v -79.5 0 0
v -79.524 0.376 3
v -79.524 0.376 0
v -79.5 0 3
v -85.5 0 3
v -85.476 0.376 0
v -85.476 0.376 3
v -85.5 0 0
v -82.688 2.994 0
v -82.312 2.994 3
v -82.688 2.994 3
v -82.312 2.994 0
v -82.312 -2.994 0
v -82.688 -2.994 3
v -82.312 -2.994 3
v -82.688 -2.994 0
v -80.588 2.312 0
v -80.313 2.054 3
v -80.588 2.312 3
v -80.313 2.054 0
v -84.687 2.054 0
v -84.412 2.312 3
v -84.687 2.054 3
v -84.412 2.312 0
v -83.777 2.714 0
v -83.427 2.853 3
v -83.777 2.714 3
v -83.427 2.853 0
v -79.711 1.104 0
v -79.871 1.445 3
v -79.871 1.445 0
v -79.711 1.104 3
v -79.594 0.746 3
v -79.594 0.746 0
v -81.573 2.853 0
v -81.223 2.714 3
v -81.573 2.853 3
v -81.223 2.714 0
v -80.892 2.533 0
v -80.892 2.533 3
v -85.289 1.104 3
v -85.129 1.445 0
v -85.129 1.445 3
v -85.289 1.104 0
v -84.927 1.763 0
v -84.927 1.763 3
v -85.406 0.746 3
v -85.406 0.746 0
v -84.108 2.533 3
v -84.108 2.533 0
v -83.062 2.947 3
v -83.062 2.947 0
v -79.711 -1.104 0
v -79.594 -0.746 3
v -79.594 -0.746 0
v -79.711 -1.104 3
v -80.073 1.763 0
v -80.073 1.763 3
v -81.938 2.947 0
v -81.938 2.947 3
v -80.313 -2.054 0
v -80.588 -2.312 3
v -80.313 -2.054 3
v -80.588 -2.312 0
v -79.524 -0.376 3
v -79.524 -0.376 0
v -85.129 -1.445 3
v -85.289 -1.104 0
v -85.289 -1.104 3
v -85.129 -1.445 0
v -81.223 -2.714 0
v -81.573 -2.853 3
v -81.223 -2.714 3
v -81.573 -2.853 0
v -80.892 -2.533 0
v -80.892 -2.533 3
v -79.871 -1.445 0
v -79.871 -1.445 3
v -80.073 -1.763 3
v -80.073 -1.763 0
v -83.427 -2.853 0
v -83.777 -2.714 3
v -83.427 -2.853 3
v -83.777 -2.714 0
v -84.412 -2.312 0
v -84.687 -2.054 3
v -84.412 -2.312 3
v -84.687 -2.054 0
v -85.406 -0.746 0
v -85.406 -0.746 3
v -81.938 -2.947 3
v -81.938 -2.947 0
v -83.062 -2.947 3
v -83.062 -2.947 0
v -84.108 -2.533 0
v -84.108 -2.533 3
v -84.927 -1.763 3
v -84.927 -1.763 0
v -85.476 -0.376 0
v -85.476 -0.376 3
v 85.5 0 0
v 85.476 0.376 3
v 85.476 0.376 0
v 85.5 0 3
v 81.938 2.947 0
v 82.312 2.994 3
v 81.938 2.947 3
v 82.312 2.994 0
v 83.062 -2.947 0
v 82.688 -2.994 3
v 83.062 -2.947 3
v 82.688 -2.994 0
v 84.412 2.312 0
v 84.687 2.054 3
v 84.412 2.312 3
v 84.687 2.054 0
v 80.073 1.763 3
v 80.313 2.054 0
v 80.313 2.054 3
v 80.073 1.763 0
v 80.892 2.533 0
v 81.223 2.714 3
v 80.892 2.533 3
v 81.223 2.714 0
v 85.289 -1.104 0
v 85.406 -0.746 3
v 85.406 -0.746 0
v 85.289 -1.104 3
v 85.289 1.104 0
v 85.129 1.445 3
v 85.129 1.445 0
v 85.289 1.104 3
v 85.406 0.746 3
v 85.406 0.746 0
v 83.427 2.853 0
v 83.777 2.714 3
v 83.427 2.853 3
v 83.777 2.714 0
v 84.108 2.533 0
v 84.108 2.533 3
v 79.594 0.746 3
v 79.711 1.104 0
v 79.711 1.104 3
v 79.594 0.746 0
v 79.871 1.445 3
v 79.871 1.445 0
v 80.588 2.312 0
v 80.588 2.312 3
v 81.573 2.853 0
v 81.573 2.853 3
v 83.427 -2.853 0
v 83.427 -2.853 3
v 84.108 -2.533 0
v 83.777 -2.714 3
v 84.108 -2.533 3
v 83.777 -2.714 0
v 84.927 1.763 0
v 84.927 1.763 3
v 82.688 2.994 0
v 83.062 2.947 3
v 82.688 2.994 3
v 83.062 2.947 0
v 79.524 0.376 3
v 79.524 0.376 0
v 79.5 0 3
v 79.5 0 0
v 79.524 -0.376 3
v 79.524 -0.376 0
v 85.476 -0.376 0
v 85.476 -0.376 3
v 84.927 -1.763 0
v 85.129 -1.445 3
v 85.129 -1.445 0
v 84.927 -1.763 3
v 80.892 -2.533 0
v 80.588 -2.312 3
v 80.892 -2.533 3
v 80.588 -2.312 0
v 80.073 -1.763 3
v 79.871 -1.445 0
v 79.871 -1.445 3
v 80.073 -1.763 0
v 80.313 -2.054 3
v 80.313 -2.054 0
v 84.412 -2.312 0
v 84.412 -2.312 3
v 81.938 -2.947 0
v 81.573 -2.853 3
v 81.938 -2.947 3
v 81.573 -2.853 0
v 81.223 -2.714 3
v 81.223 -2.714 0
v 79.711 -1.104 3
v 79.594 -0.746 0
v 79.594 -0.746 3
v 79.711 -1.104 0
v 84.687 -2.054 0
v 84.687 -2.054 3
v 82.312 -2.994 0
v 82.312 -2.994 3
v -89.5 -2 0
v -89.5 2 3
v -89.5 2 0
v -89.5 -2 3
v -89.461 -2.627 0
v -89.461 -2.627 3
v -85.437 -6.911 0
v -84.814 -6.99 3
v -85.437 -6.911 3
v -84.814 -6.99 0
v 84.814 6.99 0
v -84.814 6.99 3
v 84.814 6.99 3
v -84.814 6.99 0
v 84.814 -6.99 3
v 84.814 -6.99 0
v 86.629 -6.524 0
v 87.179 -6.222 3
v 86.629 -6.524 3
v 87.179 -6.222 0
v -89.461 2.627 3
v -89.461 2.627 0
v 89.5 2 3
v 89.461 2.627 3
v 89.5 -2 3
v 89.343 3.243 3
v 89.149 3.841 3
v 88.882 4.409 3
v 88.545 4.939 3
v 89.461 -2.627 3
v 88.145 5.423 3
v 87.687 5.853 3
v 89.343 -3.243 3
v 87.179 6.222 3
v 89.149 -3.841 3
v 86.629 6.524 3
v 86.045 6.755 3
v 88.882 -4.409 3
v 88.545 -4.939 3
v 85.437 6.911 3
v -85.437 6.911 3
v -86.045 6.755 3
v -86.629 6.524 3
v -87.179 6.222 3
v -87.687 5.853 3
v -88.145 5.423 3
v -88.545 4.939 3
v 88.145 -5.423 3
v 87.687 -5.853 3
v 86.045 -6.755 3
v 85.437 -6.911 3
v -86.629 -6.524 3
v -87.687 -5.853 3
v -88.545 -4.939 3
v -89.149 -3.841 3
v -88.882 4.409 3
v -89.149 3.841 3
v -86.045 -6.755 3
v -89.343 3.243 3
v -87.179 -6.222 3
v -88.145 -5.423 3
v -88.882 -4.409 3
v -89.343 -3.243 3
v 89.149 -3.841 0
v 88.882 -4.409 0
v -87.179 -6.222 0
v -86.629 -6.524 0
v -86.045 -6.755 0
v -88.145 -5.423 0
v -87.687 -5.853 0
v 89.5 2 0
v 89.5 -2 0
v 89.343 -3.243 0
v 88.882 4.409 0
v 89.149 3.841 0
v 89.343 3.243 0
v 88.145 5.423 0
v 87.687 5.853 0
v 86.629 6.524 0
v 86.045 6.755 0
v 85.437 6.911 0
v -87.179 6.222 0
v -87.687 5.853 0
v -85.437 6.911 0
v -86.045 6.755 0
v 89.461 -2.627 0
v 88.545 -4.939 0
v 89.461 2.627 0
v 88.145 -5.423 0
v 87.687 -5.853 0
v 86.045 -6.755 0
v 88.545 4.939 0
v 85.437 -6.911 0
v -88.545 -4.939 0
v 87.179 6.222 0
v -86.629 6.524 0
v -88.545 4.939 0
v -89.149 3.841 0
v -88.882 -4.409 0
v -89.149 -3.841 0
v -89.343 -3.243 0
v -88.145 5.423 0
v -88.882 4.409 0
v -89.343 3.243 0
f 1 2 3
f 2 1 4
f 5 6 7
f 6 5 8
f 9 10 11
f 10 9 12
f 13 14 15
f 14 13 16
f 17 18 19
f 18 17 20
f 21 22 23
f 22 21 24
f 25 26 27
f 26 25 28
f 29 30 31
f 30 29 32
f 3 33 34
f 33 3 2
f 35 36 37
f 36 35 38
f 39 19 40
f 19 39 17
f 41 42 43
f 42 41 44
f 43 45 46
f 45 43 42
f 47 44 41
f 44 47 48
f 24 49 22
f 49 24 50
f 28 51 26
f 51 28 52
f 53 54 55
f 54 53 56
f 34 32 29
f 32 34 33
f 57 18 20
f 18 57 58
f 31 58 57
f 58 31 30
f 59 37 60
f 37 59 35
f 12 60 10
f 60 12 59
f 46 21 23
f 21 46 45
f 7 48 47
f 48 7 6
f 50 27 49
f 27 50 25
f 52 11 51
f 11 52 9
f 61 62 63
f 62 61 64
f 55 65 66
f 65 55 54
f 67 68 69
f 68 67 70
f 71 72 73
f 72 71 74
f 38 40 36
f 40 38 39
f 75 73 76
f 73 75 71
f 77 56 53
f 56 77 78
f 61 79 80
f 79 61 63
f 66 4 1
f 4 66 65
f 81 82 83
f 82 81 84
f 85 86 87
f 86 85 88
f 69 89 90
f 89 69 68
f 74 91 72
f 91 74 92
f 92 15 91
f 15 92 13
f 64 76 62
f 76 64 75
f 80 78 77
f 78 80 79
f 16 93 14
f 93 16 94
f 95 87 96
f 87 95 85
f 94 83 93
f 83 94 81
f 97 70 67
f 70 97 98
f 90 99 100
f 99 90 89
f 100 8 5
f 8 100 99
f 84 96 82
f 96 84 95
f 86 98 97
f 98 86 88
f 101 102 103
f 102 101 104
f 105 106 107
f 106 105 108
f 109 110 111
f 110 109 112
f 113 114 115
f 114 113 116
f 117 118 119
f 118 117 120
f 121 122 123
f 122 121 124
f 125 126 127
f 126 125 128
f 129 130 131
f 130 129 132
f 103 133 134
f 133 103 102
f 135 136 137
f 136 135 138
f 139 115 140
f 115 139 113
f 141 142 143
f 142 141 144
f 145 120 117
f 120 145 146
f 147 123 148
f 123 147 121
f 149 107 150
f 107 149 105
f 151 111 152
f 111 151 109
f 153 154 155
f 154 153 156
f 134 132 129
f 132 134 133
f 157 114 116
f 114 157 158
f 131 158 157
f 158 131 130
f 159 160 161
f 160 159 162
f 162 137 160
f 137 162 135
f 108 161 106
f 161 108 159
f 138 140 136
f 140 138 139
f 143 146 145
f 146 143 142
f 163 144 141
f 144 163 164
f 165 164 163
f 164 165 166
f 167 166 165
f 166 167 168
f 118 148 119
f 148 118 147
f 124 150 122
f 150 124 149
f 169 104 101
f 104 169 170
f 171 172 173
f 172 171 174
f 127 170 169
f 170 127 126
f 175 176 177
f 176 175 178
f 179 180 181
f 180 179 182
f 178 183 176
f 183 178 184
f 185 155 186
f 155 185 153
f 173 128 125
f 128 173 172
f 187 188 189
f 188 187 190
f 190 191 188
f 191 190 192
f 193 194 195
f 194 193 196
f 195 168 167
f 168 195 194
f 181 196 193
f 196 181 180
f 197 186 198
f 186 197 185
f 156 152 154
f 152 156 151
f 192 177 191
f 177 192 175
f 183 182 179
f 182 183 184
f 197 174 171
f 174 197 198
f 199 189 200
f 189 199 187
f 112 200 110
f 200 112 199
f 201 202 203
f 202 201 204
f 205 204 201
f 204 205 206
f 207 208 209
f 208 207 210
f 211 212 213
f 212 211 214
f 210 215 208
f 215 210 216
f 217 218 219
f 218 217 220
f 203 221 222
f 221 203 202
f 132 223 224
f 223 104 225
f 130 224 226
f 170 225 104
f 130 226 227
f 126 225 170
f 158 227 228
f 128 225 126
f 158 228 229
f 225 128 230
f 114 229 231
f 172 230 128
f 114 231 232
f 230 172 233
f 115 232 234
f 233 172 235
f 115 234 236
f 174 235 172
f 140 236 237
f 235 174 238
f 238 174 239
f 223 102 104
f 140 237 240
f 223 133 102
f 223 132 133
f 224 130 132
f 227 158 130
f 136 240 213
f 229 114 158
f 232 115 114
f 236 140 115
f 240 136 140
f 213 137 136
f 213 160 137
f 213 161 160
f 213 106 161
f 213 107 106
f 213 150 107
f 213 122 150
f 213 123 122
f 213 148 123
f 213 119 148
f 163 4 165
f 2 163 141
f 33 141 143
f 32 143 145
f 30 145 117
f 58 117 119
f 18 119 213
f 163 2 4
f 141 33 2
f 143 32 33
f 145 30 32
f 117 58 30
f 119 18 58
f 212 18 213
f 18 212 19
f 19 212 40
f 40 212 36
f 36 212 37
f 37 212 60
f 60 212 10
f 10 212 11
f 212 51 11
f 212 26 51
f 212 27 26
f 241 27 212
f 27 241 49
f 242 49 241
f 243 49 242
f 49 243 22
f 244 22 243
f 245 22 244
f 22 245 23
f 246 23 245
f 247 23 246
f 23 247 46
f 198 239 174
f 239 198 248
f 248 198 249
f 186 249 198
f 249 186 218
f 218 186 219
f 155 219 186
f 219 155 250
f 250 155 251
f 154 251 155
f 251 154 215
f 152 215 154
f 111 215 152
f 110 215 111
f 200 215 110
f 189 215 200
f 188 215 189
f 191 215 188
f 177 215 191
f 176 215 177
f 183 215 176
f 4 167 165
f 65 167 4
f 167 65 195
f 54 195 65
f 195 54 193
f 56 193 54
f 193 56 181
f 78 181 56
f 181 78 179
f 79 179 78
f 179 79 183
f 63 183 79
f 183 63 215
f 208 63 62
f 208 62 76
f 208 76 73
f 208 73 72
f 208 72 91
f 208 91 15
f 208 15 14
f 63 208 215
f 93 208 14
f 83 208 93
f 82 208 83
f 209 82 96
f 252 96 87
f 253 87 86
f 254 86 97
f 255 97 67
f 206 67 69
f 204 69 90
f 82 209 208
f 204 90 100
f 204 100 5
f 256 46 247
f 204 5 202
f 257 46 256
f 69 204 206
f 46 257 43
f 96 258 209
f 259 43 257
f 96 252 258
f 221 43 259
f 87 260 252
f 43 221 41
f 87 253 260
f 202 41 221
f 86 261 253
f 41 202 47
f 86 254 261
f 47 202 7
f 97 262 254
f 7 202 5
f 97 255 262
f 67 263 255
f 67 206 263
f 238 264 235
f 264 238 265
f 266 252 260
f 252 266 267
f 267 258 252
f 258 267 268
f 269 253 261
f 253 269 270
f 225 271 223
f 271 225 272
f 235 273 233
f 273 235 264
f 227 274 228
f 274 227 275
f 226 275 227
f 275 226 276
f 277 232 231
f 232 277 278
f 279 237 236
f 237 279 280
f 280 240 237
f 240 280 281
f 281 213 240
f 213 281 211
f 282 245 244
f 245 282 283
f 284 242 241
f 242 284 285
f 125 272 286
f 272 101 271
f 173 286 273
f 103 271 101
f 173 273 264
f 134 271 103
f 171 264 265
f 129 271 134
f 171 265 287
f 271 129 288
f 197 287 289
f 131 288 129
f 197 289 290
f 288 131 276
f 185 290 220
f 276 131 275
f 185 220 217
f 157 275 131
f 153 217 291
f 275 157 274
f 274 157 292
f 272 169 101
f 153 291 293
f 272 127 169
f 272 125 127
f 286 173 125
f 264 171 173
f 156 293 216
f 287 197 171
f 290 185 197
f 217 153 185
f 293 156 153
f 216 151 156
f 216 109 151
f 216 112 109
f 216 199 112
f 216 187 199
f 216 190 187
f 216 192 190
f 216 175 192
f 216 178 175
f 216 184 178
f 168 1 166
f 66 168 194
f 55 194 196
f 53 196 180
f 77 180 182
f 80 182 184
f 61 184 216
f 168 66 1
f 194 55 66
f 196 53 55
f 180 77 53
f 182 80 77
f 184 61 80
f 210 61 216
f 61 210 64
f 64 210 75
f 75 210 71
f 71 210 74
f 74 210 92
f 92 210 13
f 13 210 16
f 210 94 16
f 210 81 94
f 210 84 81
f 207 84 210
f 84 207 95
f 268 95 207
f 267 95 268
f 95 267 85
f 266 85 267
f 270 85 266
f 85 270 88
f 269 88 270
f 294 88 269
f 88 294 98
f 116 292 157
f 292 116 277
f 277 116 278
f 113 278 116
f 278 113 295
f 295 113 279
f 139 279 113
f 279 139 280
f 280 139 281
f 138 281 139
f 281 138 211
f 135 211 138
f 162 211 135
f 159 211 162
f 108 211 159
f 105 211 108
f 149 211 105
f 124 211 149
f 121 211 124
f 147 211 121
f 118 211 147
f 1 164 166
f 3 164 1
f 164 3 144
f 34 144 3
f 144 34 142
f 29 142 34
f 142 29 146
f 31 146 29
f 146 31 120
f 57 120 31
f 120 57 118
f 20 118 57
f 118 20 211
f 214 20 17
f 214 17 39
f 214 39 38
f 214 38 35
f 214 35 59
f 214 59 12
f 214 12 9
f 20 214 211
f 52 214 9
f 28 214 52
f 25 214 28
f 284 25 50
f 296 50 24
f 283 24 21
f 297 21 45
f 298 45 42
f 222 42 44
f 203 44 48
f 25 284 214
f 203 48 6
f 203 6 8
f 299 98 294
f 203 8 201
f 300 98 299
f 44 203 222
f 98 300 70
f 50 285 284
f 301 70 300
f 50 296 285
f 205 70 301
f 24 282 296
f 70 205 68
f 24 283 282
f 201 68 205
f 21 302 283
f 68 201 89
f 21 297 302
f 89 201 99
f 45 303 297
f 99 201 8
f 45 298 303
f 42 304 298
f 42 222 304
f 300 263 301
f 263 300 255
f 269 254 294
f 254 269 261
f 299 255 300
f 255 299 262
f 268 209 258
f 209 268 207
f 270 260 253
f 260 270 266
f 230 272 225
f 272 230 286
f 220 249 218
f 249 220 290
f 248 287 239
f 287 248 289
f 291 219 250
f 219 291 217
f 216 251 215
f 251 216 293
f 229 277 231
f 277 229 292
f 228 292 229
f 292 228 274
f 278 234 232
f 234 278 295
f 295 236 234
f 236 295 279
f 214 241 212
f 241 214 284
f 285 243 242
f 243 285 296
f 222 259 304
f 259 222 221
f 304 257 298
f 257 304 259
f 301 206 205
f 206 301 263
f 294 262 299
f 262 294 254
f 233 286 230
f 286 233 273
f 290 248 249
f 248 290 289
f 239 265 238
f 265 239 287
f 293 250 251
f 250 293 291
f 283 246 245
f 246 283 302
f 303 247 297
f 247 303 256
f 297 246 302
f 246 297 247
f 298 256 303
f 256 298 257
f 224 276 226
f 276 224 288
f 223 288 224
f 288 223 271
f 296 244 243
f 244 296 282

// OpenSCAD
$fn = 50;


difference() {
	union() {
		hull() {
			translate(v = [-84.5000000000, 2.0000000000, 0]) {
				cylinder(h = 3, r = 5);
			}
			translate(v = [84.5000000000, 2.0000000000, 0]) {
				cylinder(h = 3, r = 5);
			}
			translate(v = [-84.5000000000, -2.0000000000, 0]) {
				cylinder(h = 3, r = 5);
			}
			translate(v = [84.5000000000, -2.0000000000, 0]) {
				cylinder(h = 3, r = 5);
			}
		}
	}
	union() {
		translate(v = [-82.5000000000, 0.0000000000, -100.0000000000]) {
			cylinder(h = 200, r = 3.0000000000);
		}
		translate(v = [-82.5000000000, 0.0000000000, -100.0000000000]) {
			cylinder(h = 200, r = 3.0000000000);
		}
		translate(v = [82.5000000000, 0.0000000000, -100.0000000000]) {
			cylinder(h = 200, r = 3.0000000000);
		}
		translate(v = [82.5000000000, 0.0000000000, -100.0000000000]) {
			cylinder(h = 200, r = 3.0000000000);
		}
	}
}
